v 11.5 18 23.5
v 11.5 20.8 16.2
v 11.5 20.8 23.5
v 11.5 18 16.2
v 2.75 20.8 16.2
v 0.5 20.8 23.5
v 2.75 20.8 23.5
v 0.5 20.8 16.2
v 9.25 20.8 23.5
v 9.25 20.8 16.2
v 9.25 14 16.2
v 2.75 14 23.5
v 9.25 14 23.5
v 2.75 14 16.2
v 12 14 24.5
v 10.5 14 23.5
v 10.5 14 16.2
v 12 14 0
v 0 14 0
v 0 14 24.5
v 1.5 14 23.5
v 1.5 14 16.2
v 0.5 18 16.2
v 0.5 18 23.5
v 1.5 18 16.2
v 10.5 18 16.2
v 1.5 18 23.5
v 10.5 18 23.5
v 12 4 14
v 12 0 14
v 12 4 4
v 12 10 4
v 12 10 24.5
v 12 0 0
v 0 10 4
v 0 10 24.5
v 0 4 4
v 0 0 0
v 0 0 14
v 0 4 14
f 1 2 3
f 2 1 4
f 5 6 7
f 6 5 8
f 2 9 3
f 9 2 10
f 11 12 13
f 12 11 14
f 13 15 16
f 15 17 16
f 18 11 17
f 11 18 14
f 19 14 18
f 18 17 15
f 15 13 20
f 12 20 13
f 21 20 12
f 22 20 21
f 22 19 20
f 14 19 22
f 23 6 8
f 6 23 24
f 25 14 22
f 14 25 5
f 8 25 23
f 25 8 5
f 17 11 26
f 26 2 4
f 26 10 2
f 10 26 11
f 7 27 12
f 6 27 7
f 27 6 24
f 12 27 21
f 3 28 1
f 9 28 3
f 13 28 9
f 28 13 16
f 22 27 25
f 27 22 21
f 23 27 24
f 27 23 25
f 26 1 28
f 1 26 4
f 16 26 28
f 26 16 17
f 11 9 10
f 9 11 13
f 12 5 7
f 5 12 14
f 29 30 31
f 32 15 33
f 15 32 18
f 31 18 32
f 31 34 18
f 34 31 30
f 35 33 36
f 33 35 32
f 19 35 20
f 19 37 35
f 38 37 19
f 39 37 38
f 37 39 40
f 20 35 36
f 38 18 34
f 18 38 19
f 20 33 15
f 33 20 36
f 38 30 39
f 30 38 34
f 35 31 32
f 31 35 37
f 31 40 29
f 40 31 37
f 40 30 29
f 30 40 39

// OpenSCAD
translate([1,14,23.5]) rotate([-90,0,0]) union() {
  // Back-side hook.
  translate([-0.5,0,0]) difference() {
    // Base cube
    cube([11, 7.3, 6.8]);

    // Cut out outer sides to make two hooks
    translate([-1,-1,-1]) cube([2,9.3,5]);
    translate([10,-1,-1]) cube([2,9.3,5]);

    // Cut out inner bit as well
    translate([2.25,-1,-1]) cube([6.5, 9.3,8.8]);
  }

  // Hook back
  translate([-1,-1,-4]) cube([12, 24.5, 4]);

  // Hook base
  translate([-1,19.5,-14]) cube([12, 4, 10]);

  // Hook front
  translate([-1,9.5,-14]) cube([12,10,4]);
}
